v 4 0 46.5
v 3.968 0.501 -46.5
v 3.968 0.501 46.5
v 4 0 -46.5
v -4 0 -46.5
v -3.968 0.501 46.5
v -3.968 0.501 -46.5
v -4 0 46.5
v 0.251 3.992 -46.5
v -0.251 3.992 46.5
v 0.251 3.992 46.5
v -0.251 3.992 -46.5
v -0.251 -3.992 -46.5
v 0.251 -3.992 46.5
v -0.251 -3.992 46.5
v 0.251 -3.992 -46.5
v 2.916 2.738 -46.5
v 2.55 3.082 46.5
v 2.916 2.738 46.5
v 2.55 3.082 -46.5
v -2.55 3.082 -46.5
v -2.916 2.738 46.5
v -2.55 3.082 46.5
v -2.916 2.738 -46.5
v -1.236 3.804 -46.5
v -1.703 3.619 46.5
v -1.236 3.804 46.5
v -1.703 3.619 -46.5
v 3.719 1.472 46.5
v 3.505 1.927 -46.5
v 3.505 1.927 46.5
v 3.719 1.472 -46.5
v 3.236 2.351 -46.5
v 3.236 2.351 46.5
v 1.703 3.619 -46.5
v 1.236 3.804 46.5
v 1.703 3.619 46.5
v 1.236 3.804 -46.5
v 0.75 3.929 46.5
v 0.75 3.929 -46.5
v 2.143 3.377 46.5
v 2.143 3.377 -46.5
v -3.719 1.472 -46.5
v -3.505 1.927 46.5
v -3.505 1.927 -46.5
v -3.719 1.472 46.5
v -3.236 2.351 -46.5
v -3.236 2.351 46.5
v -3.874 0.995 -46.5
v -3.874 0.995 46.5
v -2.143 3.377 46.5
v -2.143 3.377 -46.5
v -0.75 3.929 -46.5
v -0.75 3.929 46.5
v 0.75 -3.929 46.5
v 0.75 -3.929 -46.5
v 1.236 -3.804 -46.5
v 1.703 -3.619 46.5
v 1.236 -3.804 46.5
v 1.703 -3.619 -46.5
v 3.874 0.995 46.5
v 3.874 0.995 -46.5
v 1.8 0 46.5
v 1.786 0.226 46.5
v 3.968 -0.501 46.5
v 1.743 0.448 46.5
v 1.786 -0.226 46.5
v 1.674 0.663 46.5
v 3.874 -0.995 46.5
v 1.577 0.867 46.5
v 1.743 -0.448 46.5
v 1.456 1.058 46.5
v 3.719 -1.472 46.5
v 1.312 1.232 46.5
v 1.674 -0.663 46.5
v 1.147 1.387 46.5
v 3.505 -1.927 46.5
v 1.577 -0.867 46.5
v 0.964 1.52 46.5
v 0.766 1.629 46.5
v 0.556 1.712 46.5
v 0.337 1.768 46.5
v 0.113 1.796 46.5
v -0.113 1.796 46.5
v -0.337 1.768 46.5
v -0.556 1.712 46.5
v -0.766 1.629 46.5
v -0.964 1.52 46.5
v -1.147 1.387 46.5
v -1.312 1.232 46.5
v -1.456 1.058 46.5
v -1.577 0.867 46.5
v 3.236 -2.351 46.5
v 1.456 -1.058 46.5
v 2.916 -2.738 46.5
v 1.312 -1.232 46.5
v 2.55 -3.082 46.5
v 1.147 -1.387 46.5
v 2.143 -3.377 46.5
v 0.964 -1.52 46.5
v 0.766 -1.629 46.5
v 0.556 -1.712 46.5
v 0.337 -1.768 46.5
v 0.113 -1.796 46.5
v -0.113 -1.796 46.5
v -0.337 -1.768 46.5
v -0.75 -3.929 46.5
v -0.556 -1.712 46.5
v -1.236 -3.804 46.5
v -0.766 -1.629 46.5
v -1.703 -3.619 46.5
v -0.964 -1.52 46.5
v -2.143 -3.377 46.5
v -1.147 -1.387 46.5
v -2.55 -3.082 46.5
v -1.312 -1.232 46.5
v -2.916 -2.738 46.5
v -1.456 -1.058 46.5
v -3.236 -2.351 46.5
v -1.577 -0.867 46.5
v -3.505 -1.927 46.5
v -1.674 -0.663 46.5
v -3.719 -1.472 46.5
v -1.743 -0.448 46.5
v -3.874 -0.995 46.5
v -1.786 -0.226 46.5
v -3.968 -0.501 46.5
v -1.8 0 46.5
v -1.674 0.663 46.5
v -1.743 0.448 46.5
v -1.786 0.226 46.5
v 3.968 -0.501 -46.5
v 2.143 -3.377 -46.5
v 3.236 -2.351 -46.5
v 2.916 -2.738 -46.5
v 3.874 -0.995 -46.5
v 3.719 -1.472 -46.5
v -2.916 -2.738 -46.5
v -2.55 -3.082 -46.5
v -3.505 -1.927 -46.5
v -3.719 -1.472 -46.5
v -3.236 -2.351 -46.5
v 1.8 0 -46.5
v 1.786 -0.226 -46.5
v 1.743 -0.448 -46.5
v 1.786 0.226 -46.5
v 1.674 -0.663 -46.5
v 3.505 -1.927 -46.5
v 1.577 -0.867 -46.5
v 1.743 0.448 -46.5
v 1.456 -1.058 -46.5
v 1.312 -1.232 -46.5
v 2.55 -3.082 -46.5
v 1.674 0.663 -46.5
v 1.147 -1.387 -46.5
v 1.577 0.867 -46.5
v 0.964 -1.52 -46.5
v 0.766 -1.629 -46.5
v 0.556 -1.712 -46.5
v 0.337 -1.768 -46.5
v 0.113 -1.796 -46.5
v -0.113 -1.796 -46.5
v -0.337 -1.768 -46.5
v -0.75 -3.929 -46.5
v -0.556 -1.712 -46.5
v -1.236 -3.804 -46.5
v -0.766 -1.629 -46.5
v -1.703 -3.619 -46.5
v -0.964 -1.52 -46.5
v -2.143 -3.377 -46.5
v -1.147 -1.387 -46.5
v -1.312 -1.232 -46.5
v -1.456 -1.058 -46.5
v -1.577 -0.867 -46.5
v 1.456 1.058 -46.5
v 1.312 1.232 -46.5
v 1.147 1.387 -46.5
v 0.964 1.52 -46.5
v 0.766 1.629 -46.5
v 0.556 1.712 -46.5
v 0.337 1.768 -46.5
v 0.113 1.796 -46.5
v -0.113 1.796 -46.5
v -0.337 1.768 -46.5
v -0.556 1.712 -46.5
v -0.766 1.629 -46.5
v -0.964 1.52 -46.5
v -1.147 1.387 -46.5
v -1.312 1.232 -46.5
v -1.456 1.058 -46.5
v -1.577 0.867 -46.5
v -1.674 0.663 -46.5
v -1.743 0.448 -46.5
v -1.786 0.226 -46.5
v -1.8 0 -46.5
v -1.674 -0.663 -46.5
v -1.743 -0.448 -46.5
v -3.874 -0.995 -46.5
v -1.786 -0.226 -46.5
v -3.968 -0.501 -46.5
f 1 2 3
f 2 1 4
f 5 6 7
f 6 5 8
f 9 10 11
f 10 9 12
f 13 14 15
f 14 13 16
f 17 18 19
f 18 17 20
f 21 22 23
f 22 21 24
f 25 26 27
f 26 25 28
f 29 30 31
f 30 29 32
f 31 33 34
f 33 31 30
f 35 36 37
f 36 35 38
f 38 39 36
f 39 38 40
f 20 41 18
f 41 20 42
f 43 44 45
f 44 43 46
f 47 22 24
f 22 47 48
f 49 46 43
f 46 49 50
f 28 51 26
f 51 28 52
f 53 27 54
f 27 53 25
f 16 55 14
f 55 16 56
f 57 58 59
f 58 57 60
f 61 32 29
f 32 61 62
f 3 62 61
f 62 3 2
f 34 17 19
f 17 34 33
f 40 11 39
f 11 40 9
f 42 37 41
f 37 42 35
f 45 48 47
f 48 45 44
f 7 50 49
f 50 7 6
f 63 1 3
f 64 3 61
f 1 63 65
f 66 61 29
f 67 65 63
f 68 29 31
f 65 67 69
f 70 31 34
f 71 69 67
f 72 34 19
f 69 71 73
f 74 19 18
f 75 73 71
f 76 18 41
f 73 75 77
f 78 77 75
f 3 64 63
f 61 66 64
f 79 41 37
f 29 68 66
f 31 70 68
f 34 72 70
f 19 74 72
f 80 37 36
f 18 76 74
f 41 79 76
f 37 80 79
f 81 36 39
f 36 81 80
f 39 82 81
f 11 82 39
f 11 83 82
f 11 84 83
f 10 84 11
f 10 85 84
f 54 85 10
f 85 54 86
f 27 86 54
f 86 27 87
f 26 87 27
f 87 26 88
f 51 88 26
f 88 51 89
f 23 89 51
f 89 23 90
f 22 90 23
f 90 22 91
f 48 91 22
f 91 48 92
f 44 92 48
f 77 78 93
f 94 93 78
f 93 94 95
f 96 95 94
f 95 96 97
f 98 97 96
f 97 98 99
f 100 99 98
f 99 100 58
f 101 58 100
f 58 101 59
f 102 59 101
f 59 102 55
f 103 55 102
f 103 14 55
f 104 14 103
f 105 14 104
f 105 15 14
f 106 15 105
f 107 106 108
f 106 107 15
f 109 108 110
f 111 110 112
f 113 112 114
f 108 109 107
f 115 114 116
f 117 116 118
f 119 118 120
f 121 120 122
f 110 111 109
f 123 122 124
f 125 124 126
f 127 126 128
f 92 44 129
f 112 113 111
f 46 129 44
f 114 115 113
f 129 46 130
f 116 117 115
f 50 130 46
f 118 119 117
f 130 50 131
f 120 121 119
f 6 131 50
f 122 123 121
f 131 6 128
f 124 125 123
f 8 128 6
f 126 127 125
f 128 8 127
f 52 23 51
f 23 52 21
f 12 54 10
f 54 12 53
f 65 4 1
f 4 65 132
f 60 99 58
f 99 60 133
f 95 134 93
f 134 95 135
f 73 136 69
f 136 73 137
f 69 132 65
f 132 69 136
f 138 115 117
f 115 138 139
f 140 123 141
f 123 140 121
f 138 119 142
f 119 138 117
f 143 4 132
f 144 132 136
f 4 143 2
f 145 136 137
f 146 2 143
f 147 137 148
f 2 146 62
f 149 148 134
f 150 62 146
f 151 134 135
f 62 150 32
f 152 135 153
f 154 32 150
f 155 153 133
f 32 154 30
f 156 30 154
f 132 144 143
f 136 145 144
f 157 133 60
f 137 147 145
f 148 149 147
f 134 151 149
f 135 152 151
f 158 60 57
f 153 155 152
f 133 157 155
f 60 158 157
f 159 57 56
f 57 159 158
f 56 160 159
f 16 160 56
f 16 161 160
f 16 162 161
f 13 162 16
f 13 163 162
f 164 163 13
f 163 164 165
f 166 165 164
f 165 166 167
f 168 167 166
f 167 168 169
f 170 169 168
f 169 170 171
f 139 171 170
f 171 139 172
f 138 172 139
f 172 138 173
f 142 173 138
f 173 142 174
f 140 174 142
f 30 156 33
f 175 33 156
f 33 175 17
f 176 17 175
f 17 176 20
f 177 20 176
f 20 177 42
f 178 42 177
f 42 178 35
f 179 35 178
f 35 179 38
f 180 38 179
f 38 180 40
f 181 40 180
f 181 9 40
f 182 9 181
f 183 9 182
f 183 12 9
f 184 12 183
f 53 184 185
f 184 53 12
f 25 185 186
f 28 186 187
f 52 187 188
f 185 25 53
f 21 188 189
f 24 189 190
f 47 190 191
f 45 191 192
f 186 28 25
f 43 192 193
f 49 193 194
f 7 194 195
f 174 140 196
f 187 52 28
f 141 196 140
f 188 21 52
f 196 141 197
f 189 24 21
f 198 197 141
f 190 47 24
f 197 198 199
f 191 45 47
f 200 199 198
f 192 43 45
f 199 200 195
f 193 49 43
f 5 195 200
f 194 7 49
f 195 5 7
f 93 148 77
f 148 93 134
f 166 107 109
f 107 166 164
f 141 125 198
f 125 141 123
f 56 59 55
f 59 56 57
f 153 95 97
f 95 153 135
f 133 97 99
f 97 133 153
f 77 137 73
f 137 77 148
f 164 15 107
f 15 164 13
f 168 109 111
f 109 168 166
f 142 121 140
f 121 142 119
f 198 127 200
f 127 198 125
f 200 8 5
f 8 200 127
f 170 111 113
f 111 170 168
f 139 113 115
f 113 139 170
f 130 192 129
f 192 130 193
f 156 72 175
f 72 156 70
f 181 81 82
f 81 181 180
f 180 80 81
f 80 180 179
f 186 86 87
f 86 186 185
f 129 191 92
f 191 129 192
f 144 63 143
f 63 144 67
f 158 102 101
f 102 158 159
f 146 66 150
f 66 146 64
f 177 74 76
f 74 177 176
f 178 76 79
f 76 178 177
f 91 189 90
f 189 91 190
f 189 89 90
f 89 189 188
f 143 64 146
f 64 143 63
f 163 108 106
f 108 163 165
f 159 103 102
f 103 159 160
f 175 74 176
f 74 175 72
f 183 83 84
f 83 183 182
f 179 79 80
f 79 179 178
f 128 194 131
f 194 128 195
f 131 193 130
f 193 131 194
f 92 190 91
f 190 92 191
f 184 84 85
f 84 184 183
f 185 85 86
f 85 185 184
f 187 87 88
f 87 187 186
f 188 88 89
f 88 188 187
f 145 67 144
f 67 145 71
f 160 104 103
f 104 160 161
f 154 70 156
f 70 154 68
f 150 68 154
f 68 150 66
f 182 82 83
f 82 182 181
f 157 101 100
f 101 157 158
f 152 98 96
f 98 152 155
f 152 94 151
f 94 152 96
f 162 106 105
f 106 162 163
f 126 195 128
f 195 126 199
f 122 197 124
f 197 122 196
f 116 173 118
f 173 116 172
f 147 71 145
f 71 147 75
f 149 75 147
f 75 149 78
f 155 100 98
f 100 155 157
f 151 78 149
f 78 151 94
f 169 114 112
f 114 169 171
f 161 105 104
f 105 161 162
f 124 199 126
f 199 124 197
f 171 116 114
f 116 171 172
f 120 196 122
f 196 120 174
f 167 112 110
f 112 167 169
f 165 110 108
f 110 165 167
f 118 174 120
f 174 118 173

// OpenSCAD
$fn = 50;


difference() {
	union() {
		translate(v = [0, 0, -46.5000000000]) {
			cylinder(h = 93, r = 4.0000000000);
		}
	}
	union() {
		translate(v = [0, 0, -100.0000000000]) {
			cylinder(h = 200, r = 1.8000000000);
		}
	}
}
